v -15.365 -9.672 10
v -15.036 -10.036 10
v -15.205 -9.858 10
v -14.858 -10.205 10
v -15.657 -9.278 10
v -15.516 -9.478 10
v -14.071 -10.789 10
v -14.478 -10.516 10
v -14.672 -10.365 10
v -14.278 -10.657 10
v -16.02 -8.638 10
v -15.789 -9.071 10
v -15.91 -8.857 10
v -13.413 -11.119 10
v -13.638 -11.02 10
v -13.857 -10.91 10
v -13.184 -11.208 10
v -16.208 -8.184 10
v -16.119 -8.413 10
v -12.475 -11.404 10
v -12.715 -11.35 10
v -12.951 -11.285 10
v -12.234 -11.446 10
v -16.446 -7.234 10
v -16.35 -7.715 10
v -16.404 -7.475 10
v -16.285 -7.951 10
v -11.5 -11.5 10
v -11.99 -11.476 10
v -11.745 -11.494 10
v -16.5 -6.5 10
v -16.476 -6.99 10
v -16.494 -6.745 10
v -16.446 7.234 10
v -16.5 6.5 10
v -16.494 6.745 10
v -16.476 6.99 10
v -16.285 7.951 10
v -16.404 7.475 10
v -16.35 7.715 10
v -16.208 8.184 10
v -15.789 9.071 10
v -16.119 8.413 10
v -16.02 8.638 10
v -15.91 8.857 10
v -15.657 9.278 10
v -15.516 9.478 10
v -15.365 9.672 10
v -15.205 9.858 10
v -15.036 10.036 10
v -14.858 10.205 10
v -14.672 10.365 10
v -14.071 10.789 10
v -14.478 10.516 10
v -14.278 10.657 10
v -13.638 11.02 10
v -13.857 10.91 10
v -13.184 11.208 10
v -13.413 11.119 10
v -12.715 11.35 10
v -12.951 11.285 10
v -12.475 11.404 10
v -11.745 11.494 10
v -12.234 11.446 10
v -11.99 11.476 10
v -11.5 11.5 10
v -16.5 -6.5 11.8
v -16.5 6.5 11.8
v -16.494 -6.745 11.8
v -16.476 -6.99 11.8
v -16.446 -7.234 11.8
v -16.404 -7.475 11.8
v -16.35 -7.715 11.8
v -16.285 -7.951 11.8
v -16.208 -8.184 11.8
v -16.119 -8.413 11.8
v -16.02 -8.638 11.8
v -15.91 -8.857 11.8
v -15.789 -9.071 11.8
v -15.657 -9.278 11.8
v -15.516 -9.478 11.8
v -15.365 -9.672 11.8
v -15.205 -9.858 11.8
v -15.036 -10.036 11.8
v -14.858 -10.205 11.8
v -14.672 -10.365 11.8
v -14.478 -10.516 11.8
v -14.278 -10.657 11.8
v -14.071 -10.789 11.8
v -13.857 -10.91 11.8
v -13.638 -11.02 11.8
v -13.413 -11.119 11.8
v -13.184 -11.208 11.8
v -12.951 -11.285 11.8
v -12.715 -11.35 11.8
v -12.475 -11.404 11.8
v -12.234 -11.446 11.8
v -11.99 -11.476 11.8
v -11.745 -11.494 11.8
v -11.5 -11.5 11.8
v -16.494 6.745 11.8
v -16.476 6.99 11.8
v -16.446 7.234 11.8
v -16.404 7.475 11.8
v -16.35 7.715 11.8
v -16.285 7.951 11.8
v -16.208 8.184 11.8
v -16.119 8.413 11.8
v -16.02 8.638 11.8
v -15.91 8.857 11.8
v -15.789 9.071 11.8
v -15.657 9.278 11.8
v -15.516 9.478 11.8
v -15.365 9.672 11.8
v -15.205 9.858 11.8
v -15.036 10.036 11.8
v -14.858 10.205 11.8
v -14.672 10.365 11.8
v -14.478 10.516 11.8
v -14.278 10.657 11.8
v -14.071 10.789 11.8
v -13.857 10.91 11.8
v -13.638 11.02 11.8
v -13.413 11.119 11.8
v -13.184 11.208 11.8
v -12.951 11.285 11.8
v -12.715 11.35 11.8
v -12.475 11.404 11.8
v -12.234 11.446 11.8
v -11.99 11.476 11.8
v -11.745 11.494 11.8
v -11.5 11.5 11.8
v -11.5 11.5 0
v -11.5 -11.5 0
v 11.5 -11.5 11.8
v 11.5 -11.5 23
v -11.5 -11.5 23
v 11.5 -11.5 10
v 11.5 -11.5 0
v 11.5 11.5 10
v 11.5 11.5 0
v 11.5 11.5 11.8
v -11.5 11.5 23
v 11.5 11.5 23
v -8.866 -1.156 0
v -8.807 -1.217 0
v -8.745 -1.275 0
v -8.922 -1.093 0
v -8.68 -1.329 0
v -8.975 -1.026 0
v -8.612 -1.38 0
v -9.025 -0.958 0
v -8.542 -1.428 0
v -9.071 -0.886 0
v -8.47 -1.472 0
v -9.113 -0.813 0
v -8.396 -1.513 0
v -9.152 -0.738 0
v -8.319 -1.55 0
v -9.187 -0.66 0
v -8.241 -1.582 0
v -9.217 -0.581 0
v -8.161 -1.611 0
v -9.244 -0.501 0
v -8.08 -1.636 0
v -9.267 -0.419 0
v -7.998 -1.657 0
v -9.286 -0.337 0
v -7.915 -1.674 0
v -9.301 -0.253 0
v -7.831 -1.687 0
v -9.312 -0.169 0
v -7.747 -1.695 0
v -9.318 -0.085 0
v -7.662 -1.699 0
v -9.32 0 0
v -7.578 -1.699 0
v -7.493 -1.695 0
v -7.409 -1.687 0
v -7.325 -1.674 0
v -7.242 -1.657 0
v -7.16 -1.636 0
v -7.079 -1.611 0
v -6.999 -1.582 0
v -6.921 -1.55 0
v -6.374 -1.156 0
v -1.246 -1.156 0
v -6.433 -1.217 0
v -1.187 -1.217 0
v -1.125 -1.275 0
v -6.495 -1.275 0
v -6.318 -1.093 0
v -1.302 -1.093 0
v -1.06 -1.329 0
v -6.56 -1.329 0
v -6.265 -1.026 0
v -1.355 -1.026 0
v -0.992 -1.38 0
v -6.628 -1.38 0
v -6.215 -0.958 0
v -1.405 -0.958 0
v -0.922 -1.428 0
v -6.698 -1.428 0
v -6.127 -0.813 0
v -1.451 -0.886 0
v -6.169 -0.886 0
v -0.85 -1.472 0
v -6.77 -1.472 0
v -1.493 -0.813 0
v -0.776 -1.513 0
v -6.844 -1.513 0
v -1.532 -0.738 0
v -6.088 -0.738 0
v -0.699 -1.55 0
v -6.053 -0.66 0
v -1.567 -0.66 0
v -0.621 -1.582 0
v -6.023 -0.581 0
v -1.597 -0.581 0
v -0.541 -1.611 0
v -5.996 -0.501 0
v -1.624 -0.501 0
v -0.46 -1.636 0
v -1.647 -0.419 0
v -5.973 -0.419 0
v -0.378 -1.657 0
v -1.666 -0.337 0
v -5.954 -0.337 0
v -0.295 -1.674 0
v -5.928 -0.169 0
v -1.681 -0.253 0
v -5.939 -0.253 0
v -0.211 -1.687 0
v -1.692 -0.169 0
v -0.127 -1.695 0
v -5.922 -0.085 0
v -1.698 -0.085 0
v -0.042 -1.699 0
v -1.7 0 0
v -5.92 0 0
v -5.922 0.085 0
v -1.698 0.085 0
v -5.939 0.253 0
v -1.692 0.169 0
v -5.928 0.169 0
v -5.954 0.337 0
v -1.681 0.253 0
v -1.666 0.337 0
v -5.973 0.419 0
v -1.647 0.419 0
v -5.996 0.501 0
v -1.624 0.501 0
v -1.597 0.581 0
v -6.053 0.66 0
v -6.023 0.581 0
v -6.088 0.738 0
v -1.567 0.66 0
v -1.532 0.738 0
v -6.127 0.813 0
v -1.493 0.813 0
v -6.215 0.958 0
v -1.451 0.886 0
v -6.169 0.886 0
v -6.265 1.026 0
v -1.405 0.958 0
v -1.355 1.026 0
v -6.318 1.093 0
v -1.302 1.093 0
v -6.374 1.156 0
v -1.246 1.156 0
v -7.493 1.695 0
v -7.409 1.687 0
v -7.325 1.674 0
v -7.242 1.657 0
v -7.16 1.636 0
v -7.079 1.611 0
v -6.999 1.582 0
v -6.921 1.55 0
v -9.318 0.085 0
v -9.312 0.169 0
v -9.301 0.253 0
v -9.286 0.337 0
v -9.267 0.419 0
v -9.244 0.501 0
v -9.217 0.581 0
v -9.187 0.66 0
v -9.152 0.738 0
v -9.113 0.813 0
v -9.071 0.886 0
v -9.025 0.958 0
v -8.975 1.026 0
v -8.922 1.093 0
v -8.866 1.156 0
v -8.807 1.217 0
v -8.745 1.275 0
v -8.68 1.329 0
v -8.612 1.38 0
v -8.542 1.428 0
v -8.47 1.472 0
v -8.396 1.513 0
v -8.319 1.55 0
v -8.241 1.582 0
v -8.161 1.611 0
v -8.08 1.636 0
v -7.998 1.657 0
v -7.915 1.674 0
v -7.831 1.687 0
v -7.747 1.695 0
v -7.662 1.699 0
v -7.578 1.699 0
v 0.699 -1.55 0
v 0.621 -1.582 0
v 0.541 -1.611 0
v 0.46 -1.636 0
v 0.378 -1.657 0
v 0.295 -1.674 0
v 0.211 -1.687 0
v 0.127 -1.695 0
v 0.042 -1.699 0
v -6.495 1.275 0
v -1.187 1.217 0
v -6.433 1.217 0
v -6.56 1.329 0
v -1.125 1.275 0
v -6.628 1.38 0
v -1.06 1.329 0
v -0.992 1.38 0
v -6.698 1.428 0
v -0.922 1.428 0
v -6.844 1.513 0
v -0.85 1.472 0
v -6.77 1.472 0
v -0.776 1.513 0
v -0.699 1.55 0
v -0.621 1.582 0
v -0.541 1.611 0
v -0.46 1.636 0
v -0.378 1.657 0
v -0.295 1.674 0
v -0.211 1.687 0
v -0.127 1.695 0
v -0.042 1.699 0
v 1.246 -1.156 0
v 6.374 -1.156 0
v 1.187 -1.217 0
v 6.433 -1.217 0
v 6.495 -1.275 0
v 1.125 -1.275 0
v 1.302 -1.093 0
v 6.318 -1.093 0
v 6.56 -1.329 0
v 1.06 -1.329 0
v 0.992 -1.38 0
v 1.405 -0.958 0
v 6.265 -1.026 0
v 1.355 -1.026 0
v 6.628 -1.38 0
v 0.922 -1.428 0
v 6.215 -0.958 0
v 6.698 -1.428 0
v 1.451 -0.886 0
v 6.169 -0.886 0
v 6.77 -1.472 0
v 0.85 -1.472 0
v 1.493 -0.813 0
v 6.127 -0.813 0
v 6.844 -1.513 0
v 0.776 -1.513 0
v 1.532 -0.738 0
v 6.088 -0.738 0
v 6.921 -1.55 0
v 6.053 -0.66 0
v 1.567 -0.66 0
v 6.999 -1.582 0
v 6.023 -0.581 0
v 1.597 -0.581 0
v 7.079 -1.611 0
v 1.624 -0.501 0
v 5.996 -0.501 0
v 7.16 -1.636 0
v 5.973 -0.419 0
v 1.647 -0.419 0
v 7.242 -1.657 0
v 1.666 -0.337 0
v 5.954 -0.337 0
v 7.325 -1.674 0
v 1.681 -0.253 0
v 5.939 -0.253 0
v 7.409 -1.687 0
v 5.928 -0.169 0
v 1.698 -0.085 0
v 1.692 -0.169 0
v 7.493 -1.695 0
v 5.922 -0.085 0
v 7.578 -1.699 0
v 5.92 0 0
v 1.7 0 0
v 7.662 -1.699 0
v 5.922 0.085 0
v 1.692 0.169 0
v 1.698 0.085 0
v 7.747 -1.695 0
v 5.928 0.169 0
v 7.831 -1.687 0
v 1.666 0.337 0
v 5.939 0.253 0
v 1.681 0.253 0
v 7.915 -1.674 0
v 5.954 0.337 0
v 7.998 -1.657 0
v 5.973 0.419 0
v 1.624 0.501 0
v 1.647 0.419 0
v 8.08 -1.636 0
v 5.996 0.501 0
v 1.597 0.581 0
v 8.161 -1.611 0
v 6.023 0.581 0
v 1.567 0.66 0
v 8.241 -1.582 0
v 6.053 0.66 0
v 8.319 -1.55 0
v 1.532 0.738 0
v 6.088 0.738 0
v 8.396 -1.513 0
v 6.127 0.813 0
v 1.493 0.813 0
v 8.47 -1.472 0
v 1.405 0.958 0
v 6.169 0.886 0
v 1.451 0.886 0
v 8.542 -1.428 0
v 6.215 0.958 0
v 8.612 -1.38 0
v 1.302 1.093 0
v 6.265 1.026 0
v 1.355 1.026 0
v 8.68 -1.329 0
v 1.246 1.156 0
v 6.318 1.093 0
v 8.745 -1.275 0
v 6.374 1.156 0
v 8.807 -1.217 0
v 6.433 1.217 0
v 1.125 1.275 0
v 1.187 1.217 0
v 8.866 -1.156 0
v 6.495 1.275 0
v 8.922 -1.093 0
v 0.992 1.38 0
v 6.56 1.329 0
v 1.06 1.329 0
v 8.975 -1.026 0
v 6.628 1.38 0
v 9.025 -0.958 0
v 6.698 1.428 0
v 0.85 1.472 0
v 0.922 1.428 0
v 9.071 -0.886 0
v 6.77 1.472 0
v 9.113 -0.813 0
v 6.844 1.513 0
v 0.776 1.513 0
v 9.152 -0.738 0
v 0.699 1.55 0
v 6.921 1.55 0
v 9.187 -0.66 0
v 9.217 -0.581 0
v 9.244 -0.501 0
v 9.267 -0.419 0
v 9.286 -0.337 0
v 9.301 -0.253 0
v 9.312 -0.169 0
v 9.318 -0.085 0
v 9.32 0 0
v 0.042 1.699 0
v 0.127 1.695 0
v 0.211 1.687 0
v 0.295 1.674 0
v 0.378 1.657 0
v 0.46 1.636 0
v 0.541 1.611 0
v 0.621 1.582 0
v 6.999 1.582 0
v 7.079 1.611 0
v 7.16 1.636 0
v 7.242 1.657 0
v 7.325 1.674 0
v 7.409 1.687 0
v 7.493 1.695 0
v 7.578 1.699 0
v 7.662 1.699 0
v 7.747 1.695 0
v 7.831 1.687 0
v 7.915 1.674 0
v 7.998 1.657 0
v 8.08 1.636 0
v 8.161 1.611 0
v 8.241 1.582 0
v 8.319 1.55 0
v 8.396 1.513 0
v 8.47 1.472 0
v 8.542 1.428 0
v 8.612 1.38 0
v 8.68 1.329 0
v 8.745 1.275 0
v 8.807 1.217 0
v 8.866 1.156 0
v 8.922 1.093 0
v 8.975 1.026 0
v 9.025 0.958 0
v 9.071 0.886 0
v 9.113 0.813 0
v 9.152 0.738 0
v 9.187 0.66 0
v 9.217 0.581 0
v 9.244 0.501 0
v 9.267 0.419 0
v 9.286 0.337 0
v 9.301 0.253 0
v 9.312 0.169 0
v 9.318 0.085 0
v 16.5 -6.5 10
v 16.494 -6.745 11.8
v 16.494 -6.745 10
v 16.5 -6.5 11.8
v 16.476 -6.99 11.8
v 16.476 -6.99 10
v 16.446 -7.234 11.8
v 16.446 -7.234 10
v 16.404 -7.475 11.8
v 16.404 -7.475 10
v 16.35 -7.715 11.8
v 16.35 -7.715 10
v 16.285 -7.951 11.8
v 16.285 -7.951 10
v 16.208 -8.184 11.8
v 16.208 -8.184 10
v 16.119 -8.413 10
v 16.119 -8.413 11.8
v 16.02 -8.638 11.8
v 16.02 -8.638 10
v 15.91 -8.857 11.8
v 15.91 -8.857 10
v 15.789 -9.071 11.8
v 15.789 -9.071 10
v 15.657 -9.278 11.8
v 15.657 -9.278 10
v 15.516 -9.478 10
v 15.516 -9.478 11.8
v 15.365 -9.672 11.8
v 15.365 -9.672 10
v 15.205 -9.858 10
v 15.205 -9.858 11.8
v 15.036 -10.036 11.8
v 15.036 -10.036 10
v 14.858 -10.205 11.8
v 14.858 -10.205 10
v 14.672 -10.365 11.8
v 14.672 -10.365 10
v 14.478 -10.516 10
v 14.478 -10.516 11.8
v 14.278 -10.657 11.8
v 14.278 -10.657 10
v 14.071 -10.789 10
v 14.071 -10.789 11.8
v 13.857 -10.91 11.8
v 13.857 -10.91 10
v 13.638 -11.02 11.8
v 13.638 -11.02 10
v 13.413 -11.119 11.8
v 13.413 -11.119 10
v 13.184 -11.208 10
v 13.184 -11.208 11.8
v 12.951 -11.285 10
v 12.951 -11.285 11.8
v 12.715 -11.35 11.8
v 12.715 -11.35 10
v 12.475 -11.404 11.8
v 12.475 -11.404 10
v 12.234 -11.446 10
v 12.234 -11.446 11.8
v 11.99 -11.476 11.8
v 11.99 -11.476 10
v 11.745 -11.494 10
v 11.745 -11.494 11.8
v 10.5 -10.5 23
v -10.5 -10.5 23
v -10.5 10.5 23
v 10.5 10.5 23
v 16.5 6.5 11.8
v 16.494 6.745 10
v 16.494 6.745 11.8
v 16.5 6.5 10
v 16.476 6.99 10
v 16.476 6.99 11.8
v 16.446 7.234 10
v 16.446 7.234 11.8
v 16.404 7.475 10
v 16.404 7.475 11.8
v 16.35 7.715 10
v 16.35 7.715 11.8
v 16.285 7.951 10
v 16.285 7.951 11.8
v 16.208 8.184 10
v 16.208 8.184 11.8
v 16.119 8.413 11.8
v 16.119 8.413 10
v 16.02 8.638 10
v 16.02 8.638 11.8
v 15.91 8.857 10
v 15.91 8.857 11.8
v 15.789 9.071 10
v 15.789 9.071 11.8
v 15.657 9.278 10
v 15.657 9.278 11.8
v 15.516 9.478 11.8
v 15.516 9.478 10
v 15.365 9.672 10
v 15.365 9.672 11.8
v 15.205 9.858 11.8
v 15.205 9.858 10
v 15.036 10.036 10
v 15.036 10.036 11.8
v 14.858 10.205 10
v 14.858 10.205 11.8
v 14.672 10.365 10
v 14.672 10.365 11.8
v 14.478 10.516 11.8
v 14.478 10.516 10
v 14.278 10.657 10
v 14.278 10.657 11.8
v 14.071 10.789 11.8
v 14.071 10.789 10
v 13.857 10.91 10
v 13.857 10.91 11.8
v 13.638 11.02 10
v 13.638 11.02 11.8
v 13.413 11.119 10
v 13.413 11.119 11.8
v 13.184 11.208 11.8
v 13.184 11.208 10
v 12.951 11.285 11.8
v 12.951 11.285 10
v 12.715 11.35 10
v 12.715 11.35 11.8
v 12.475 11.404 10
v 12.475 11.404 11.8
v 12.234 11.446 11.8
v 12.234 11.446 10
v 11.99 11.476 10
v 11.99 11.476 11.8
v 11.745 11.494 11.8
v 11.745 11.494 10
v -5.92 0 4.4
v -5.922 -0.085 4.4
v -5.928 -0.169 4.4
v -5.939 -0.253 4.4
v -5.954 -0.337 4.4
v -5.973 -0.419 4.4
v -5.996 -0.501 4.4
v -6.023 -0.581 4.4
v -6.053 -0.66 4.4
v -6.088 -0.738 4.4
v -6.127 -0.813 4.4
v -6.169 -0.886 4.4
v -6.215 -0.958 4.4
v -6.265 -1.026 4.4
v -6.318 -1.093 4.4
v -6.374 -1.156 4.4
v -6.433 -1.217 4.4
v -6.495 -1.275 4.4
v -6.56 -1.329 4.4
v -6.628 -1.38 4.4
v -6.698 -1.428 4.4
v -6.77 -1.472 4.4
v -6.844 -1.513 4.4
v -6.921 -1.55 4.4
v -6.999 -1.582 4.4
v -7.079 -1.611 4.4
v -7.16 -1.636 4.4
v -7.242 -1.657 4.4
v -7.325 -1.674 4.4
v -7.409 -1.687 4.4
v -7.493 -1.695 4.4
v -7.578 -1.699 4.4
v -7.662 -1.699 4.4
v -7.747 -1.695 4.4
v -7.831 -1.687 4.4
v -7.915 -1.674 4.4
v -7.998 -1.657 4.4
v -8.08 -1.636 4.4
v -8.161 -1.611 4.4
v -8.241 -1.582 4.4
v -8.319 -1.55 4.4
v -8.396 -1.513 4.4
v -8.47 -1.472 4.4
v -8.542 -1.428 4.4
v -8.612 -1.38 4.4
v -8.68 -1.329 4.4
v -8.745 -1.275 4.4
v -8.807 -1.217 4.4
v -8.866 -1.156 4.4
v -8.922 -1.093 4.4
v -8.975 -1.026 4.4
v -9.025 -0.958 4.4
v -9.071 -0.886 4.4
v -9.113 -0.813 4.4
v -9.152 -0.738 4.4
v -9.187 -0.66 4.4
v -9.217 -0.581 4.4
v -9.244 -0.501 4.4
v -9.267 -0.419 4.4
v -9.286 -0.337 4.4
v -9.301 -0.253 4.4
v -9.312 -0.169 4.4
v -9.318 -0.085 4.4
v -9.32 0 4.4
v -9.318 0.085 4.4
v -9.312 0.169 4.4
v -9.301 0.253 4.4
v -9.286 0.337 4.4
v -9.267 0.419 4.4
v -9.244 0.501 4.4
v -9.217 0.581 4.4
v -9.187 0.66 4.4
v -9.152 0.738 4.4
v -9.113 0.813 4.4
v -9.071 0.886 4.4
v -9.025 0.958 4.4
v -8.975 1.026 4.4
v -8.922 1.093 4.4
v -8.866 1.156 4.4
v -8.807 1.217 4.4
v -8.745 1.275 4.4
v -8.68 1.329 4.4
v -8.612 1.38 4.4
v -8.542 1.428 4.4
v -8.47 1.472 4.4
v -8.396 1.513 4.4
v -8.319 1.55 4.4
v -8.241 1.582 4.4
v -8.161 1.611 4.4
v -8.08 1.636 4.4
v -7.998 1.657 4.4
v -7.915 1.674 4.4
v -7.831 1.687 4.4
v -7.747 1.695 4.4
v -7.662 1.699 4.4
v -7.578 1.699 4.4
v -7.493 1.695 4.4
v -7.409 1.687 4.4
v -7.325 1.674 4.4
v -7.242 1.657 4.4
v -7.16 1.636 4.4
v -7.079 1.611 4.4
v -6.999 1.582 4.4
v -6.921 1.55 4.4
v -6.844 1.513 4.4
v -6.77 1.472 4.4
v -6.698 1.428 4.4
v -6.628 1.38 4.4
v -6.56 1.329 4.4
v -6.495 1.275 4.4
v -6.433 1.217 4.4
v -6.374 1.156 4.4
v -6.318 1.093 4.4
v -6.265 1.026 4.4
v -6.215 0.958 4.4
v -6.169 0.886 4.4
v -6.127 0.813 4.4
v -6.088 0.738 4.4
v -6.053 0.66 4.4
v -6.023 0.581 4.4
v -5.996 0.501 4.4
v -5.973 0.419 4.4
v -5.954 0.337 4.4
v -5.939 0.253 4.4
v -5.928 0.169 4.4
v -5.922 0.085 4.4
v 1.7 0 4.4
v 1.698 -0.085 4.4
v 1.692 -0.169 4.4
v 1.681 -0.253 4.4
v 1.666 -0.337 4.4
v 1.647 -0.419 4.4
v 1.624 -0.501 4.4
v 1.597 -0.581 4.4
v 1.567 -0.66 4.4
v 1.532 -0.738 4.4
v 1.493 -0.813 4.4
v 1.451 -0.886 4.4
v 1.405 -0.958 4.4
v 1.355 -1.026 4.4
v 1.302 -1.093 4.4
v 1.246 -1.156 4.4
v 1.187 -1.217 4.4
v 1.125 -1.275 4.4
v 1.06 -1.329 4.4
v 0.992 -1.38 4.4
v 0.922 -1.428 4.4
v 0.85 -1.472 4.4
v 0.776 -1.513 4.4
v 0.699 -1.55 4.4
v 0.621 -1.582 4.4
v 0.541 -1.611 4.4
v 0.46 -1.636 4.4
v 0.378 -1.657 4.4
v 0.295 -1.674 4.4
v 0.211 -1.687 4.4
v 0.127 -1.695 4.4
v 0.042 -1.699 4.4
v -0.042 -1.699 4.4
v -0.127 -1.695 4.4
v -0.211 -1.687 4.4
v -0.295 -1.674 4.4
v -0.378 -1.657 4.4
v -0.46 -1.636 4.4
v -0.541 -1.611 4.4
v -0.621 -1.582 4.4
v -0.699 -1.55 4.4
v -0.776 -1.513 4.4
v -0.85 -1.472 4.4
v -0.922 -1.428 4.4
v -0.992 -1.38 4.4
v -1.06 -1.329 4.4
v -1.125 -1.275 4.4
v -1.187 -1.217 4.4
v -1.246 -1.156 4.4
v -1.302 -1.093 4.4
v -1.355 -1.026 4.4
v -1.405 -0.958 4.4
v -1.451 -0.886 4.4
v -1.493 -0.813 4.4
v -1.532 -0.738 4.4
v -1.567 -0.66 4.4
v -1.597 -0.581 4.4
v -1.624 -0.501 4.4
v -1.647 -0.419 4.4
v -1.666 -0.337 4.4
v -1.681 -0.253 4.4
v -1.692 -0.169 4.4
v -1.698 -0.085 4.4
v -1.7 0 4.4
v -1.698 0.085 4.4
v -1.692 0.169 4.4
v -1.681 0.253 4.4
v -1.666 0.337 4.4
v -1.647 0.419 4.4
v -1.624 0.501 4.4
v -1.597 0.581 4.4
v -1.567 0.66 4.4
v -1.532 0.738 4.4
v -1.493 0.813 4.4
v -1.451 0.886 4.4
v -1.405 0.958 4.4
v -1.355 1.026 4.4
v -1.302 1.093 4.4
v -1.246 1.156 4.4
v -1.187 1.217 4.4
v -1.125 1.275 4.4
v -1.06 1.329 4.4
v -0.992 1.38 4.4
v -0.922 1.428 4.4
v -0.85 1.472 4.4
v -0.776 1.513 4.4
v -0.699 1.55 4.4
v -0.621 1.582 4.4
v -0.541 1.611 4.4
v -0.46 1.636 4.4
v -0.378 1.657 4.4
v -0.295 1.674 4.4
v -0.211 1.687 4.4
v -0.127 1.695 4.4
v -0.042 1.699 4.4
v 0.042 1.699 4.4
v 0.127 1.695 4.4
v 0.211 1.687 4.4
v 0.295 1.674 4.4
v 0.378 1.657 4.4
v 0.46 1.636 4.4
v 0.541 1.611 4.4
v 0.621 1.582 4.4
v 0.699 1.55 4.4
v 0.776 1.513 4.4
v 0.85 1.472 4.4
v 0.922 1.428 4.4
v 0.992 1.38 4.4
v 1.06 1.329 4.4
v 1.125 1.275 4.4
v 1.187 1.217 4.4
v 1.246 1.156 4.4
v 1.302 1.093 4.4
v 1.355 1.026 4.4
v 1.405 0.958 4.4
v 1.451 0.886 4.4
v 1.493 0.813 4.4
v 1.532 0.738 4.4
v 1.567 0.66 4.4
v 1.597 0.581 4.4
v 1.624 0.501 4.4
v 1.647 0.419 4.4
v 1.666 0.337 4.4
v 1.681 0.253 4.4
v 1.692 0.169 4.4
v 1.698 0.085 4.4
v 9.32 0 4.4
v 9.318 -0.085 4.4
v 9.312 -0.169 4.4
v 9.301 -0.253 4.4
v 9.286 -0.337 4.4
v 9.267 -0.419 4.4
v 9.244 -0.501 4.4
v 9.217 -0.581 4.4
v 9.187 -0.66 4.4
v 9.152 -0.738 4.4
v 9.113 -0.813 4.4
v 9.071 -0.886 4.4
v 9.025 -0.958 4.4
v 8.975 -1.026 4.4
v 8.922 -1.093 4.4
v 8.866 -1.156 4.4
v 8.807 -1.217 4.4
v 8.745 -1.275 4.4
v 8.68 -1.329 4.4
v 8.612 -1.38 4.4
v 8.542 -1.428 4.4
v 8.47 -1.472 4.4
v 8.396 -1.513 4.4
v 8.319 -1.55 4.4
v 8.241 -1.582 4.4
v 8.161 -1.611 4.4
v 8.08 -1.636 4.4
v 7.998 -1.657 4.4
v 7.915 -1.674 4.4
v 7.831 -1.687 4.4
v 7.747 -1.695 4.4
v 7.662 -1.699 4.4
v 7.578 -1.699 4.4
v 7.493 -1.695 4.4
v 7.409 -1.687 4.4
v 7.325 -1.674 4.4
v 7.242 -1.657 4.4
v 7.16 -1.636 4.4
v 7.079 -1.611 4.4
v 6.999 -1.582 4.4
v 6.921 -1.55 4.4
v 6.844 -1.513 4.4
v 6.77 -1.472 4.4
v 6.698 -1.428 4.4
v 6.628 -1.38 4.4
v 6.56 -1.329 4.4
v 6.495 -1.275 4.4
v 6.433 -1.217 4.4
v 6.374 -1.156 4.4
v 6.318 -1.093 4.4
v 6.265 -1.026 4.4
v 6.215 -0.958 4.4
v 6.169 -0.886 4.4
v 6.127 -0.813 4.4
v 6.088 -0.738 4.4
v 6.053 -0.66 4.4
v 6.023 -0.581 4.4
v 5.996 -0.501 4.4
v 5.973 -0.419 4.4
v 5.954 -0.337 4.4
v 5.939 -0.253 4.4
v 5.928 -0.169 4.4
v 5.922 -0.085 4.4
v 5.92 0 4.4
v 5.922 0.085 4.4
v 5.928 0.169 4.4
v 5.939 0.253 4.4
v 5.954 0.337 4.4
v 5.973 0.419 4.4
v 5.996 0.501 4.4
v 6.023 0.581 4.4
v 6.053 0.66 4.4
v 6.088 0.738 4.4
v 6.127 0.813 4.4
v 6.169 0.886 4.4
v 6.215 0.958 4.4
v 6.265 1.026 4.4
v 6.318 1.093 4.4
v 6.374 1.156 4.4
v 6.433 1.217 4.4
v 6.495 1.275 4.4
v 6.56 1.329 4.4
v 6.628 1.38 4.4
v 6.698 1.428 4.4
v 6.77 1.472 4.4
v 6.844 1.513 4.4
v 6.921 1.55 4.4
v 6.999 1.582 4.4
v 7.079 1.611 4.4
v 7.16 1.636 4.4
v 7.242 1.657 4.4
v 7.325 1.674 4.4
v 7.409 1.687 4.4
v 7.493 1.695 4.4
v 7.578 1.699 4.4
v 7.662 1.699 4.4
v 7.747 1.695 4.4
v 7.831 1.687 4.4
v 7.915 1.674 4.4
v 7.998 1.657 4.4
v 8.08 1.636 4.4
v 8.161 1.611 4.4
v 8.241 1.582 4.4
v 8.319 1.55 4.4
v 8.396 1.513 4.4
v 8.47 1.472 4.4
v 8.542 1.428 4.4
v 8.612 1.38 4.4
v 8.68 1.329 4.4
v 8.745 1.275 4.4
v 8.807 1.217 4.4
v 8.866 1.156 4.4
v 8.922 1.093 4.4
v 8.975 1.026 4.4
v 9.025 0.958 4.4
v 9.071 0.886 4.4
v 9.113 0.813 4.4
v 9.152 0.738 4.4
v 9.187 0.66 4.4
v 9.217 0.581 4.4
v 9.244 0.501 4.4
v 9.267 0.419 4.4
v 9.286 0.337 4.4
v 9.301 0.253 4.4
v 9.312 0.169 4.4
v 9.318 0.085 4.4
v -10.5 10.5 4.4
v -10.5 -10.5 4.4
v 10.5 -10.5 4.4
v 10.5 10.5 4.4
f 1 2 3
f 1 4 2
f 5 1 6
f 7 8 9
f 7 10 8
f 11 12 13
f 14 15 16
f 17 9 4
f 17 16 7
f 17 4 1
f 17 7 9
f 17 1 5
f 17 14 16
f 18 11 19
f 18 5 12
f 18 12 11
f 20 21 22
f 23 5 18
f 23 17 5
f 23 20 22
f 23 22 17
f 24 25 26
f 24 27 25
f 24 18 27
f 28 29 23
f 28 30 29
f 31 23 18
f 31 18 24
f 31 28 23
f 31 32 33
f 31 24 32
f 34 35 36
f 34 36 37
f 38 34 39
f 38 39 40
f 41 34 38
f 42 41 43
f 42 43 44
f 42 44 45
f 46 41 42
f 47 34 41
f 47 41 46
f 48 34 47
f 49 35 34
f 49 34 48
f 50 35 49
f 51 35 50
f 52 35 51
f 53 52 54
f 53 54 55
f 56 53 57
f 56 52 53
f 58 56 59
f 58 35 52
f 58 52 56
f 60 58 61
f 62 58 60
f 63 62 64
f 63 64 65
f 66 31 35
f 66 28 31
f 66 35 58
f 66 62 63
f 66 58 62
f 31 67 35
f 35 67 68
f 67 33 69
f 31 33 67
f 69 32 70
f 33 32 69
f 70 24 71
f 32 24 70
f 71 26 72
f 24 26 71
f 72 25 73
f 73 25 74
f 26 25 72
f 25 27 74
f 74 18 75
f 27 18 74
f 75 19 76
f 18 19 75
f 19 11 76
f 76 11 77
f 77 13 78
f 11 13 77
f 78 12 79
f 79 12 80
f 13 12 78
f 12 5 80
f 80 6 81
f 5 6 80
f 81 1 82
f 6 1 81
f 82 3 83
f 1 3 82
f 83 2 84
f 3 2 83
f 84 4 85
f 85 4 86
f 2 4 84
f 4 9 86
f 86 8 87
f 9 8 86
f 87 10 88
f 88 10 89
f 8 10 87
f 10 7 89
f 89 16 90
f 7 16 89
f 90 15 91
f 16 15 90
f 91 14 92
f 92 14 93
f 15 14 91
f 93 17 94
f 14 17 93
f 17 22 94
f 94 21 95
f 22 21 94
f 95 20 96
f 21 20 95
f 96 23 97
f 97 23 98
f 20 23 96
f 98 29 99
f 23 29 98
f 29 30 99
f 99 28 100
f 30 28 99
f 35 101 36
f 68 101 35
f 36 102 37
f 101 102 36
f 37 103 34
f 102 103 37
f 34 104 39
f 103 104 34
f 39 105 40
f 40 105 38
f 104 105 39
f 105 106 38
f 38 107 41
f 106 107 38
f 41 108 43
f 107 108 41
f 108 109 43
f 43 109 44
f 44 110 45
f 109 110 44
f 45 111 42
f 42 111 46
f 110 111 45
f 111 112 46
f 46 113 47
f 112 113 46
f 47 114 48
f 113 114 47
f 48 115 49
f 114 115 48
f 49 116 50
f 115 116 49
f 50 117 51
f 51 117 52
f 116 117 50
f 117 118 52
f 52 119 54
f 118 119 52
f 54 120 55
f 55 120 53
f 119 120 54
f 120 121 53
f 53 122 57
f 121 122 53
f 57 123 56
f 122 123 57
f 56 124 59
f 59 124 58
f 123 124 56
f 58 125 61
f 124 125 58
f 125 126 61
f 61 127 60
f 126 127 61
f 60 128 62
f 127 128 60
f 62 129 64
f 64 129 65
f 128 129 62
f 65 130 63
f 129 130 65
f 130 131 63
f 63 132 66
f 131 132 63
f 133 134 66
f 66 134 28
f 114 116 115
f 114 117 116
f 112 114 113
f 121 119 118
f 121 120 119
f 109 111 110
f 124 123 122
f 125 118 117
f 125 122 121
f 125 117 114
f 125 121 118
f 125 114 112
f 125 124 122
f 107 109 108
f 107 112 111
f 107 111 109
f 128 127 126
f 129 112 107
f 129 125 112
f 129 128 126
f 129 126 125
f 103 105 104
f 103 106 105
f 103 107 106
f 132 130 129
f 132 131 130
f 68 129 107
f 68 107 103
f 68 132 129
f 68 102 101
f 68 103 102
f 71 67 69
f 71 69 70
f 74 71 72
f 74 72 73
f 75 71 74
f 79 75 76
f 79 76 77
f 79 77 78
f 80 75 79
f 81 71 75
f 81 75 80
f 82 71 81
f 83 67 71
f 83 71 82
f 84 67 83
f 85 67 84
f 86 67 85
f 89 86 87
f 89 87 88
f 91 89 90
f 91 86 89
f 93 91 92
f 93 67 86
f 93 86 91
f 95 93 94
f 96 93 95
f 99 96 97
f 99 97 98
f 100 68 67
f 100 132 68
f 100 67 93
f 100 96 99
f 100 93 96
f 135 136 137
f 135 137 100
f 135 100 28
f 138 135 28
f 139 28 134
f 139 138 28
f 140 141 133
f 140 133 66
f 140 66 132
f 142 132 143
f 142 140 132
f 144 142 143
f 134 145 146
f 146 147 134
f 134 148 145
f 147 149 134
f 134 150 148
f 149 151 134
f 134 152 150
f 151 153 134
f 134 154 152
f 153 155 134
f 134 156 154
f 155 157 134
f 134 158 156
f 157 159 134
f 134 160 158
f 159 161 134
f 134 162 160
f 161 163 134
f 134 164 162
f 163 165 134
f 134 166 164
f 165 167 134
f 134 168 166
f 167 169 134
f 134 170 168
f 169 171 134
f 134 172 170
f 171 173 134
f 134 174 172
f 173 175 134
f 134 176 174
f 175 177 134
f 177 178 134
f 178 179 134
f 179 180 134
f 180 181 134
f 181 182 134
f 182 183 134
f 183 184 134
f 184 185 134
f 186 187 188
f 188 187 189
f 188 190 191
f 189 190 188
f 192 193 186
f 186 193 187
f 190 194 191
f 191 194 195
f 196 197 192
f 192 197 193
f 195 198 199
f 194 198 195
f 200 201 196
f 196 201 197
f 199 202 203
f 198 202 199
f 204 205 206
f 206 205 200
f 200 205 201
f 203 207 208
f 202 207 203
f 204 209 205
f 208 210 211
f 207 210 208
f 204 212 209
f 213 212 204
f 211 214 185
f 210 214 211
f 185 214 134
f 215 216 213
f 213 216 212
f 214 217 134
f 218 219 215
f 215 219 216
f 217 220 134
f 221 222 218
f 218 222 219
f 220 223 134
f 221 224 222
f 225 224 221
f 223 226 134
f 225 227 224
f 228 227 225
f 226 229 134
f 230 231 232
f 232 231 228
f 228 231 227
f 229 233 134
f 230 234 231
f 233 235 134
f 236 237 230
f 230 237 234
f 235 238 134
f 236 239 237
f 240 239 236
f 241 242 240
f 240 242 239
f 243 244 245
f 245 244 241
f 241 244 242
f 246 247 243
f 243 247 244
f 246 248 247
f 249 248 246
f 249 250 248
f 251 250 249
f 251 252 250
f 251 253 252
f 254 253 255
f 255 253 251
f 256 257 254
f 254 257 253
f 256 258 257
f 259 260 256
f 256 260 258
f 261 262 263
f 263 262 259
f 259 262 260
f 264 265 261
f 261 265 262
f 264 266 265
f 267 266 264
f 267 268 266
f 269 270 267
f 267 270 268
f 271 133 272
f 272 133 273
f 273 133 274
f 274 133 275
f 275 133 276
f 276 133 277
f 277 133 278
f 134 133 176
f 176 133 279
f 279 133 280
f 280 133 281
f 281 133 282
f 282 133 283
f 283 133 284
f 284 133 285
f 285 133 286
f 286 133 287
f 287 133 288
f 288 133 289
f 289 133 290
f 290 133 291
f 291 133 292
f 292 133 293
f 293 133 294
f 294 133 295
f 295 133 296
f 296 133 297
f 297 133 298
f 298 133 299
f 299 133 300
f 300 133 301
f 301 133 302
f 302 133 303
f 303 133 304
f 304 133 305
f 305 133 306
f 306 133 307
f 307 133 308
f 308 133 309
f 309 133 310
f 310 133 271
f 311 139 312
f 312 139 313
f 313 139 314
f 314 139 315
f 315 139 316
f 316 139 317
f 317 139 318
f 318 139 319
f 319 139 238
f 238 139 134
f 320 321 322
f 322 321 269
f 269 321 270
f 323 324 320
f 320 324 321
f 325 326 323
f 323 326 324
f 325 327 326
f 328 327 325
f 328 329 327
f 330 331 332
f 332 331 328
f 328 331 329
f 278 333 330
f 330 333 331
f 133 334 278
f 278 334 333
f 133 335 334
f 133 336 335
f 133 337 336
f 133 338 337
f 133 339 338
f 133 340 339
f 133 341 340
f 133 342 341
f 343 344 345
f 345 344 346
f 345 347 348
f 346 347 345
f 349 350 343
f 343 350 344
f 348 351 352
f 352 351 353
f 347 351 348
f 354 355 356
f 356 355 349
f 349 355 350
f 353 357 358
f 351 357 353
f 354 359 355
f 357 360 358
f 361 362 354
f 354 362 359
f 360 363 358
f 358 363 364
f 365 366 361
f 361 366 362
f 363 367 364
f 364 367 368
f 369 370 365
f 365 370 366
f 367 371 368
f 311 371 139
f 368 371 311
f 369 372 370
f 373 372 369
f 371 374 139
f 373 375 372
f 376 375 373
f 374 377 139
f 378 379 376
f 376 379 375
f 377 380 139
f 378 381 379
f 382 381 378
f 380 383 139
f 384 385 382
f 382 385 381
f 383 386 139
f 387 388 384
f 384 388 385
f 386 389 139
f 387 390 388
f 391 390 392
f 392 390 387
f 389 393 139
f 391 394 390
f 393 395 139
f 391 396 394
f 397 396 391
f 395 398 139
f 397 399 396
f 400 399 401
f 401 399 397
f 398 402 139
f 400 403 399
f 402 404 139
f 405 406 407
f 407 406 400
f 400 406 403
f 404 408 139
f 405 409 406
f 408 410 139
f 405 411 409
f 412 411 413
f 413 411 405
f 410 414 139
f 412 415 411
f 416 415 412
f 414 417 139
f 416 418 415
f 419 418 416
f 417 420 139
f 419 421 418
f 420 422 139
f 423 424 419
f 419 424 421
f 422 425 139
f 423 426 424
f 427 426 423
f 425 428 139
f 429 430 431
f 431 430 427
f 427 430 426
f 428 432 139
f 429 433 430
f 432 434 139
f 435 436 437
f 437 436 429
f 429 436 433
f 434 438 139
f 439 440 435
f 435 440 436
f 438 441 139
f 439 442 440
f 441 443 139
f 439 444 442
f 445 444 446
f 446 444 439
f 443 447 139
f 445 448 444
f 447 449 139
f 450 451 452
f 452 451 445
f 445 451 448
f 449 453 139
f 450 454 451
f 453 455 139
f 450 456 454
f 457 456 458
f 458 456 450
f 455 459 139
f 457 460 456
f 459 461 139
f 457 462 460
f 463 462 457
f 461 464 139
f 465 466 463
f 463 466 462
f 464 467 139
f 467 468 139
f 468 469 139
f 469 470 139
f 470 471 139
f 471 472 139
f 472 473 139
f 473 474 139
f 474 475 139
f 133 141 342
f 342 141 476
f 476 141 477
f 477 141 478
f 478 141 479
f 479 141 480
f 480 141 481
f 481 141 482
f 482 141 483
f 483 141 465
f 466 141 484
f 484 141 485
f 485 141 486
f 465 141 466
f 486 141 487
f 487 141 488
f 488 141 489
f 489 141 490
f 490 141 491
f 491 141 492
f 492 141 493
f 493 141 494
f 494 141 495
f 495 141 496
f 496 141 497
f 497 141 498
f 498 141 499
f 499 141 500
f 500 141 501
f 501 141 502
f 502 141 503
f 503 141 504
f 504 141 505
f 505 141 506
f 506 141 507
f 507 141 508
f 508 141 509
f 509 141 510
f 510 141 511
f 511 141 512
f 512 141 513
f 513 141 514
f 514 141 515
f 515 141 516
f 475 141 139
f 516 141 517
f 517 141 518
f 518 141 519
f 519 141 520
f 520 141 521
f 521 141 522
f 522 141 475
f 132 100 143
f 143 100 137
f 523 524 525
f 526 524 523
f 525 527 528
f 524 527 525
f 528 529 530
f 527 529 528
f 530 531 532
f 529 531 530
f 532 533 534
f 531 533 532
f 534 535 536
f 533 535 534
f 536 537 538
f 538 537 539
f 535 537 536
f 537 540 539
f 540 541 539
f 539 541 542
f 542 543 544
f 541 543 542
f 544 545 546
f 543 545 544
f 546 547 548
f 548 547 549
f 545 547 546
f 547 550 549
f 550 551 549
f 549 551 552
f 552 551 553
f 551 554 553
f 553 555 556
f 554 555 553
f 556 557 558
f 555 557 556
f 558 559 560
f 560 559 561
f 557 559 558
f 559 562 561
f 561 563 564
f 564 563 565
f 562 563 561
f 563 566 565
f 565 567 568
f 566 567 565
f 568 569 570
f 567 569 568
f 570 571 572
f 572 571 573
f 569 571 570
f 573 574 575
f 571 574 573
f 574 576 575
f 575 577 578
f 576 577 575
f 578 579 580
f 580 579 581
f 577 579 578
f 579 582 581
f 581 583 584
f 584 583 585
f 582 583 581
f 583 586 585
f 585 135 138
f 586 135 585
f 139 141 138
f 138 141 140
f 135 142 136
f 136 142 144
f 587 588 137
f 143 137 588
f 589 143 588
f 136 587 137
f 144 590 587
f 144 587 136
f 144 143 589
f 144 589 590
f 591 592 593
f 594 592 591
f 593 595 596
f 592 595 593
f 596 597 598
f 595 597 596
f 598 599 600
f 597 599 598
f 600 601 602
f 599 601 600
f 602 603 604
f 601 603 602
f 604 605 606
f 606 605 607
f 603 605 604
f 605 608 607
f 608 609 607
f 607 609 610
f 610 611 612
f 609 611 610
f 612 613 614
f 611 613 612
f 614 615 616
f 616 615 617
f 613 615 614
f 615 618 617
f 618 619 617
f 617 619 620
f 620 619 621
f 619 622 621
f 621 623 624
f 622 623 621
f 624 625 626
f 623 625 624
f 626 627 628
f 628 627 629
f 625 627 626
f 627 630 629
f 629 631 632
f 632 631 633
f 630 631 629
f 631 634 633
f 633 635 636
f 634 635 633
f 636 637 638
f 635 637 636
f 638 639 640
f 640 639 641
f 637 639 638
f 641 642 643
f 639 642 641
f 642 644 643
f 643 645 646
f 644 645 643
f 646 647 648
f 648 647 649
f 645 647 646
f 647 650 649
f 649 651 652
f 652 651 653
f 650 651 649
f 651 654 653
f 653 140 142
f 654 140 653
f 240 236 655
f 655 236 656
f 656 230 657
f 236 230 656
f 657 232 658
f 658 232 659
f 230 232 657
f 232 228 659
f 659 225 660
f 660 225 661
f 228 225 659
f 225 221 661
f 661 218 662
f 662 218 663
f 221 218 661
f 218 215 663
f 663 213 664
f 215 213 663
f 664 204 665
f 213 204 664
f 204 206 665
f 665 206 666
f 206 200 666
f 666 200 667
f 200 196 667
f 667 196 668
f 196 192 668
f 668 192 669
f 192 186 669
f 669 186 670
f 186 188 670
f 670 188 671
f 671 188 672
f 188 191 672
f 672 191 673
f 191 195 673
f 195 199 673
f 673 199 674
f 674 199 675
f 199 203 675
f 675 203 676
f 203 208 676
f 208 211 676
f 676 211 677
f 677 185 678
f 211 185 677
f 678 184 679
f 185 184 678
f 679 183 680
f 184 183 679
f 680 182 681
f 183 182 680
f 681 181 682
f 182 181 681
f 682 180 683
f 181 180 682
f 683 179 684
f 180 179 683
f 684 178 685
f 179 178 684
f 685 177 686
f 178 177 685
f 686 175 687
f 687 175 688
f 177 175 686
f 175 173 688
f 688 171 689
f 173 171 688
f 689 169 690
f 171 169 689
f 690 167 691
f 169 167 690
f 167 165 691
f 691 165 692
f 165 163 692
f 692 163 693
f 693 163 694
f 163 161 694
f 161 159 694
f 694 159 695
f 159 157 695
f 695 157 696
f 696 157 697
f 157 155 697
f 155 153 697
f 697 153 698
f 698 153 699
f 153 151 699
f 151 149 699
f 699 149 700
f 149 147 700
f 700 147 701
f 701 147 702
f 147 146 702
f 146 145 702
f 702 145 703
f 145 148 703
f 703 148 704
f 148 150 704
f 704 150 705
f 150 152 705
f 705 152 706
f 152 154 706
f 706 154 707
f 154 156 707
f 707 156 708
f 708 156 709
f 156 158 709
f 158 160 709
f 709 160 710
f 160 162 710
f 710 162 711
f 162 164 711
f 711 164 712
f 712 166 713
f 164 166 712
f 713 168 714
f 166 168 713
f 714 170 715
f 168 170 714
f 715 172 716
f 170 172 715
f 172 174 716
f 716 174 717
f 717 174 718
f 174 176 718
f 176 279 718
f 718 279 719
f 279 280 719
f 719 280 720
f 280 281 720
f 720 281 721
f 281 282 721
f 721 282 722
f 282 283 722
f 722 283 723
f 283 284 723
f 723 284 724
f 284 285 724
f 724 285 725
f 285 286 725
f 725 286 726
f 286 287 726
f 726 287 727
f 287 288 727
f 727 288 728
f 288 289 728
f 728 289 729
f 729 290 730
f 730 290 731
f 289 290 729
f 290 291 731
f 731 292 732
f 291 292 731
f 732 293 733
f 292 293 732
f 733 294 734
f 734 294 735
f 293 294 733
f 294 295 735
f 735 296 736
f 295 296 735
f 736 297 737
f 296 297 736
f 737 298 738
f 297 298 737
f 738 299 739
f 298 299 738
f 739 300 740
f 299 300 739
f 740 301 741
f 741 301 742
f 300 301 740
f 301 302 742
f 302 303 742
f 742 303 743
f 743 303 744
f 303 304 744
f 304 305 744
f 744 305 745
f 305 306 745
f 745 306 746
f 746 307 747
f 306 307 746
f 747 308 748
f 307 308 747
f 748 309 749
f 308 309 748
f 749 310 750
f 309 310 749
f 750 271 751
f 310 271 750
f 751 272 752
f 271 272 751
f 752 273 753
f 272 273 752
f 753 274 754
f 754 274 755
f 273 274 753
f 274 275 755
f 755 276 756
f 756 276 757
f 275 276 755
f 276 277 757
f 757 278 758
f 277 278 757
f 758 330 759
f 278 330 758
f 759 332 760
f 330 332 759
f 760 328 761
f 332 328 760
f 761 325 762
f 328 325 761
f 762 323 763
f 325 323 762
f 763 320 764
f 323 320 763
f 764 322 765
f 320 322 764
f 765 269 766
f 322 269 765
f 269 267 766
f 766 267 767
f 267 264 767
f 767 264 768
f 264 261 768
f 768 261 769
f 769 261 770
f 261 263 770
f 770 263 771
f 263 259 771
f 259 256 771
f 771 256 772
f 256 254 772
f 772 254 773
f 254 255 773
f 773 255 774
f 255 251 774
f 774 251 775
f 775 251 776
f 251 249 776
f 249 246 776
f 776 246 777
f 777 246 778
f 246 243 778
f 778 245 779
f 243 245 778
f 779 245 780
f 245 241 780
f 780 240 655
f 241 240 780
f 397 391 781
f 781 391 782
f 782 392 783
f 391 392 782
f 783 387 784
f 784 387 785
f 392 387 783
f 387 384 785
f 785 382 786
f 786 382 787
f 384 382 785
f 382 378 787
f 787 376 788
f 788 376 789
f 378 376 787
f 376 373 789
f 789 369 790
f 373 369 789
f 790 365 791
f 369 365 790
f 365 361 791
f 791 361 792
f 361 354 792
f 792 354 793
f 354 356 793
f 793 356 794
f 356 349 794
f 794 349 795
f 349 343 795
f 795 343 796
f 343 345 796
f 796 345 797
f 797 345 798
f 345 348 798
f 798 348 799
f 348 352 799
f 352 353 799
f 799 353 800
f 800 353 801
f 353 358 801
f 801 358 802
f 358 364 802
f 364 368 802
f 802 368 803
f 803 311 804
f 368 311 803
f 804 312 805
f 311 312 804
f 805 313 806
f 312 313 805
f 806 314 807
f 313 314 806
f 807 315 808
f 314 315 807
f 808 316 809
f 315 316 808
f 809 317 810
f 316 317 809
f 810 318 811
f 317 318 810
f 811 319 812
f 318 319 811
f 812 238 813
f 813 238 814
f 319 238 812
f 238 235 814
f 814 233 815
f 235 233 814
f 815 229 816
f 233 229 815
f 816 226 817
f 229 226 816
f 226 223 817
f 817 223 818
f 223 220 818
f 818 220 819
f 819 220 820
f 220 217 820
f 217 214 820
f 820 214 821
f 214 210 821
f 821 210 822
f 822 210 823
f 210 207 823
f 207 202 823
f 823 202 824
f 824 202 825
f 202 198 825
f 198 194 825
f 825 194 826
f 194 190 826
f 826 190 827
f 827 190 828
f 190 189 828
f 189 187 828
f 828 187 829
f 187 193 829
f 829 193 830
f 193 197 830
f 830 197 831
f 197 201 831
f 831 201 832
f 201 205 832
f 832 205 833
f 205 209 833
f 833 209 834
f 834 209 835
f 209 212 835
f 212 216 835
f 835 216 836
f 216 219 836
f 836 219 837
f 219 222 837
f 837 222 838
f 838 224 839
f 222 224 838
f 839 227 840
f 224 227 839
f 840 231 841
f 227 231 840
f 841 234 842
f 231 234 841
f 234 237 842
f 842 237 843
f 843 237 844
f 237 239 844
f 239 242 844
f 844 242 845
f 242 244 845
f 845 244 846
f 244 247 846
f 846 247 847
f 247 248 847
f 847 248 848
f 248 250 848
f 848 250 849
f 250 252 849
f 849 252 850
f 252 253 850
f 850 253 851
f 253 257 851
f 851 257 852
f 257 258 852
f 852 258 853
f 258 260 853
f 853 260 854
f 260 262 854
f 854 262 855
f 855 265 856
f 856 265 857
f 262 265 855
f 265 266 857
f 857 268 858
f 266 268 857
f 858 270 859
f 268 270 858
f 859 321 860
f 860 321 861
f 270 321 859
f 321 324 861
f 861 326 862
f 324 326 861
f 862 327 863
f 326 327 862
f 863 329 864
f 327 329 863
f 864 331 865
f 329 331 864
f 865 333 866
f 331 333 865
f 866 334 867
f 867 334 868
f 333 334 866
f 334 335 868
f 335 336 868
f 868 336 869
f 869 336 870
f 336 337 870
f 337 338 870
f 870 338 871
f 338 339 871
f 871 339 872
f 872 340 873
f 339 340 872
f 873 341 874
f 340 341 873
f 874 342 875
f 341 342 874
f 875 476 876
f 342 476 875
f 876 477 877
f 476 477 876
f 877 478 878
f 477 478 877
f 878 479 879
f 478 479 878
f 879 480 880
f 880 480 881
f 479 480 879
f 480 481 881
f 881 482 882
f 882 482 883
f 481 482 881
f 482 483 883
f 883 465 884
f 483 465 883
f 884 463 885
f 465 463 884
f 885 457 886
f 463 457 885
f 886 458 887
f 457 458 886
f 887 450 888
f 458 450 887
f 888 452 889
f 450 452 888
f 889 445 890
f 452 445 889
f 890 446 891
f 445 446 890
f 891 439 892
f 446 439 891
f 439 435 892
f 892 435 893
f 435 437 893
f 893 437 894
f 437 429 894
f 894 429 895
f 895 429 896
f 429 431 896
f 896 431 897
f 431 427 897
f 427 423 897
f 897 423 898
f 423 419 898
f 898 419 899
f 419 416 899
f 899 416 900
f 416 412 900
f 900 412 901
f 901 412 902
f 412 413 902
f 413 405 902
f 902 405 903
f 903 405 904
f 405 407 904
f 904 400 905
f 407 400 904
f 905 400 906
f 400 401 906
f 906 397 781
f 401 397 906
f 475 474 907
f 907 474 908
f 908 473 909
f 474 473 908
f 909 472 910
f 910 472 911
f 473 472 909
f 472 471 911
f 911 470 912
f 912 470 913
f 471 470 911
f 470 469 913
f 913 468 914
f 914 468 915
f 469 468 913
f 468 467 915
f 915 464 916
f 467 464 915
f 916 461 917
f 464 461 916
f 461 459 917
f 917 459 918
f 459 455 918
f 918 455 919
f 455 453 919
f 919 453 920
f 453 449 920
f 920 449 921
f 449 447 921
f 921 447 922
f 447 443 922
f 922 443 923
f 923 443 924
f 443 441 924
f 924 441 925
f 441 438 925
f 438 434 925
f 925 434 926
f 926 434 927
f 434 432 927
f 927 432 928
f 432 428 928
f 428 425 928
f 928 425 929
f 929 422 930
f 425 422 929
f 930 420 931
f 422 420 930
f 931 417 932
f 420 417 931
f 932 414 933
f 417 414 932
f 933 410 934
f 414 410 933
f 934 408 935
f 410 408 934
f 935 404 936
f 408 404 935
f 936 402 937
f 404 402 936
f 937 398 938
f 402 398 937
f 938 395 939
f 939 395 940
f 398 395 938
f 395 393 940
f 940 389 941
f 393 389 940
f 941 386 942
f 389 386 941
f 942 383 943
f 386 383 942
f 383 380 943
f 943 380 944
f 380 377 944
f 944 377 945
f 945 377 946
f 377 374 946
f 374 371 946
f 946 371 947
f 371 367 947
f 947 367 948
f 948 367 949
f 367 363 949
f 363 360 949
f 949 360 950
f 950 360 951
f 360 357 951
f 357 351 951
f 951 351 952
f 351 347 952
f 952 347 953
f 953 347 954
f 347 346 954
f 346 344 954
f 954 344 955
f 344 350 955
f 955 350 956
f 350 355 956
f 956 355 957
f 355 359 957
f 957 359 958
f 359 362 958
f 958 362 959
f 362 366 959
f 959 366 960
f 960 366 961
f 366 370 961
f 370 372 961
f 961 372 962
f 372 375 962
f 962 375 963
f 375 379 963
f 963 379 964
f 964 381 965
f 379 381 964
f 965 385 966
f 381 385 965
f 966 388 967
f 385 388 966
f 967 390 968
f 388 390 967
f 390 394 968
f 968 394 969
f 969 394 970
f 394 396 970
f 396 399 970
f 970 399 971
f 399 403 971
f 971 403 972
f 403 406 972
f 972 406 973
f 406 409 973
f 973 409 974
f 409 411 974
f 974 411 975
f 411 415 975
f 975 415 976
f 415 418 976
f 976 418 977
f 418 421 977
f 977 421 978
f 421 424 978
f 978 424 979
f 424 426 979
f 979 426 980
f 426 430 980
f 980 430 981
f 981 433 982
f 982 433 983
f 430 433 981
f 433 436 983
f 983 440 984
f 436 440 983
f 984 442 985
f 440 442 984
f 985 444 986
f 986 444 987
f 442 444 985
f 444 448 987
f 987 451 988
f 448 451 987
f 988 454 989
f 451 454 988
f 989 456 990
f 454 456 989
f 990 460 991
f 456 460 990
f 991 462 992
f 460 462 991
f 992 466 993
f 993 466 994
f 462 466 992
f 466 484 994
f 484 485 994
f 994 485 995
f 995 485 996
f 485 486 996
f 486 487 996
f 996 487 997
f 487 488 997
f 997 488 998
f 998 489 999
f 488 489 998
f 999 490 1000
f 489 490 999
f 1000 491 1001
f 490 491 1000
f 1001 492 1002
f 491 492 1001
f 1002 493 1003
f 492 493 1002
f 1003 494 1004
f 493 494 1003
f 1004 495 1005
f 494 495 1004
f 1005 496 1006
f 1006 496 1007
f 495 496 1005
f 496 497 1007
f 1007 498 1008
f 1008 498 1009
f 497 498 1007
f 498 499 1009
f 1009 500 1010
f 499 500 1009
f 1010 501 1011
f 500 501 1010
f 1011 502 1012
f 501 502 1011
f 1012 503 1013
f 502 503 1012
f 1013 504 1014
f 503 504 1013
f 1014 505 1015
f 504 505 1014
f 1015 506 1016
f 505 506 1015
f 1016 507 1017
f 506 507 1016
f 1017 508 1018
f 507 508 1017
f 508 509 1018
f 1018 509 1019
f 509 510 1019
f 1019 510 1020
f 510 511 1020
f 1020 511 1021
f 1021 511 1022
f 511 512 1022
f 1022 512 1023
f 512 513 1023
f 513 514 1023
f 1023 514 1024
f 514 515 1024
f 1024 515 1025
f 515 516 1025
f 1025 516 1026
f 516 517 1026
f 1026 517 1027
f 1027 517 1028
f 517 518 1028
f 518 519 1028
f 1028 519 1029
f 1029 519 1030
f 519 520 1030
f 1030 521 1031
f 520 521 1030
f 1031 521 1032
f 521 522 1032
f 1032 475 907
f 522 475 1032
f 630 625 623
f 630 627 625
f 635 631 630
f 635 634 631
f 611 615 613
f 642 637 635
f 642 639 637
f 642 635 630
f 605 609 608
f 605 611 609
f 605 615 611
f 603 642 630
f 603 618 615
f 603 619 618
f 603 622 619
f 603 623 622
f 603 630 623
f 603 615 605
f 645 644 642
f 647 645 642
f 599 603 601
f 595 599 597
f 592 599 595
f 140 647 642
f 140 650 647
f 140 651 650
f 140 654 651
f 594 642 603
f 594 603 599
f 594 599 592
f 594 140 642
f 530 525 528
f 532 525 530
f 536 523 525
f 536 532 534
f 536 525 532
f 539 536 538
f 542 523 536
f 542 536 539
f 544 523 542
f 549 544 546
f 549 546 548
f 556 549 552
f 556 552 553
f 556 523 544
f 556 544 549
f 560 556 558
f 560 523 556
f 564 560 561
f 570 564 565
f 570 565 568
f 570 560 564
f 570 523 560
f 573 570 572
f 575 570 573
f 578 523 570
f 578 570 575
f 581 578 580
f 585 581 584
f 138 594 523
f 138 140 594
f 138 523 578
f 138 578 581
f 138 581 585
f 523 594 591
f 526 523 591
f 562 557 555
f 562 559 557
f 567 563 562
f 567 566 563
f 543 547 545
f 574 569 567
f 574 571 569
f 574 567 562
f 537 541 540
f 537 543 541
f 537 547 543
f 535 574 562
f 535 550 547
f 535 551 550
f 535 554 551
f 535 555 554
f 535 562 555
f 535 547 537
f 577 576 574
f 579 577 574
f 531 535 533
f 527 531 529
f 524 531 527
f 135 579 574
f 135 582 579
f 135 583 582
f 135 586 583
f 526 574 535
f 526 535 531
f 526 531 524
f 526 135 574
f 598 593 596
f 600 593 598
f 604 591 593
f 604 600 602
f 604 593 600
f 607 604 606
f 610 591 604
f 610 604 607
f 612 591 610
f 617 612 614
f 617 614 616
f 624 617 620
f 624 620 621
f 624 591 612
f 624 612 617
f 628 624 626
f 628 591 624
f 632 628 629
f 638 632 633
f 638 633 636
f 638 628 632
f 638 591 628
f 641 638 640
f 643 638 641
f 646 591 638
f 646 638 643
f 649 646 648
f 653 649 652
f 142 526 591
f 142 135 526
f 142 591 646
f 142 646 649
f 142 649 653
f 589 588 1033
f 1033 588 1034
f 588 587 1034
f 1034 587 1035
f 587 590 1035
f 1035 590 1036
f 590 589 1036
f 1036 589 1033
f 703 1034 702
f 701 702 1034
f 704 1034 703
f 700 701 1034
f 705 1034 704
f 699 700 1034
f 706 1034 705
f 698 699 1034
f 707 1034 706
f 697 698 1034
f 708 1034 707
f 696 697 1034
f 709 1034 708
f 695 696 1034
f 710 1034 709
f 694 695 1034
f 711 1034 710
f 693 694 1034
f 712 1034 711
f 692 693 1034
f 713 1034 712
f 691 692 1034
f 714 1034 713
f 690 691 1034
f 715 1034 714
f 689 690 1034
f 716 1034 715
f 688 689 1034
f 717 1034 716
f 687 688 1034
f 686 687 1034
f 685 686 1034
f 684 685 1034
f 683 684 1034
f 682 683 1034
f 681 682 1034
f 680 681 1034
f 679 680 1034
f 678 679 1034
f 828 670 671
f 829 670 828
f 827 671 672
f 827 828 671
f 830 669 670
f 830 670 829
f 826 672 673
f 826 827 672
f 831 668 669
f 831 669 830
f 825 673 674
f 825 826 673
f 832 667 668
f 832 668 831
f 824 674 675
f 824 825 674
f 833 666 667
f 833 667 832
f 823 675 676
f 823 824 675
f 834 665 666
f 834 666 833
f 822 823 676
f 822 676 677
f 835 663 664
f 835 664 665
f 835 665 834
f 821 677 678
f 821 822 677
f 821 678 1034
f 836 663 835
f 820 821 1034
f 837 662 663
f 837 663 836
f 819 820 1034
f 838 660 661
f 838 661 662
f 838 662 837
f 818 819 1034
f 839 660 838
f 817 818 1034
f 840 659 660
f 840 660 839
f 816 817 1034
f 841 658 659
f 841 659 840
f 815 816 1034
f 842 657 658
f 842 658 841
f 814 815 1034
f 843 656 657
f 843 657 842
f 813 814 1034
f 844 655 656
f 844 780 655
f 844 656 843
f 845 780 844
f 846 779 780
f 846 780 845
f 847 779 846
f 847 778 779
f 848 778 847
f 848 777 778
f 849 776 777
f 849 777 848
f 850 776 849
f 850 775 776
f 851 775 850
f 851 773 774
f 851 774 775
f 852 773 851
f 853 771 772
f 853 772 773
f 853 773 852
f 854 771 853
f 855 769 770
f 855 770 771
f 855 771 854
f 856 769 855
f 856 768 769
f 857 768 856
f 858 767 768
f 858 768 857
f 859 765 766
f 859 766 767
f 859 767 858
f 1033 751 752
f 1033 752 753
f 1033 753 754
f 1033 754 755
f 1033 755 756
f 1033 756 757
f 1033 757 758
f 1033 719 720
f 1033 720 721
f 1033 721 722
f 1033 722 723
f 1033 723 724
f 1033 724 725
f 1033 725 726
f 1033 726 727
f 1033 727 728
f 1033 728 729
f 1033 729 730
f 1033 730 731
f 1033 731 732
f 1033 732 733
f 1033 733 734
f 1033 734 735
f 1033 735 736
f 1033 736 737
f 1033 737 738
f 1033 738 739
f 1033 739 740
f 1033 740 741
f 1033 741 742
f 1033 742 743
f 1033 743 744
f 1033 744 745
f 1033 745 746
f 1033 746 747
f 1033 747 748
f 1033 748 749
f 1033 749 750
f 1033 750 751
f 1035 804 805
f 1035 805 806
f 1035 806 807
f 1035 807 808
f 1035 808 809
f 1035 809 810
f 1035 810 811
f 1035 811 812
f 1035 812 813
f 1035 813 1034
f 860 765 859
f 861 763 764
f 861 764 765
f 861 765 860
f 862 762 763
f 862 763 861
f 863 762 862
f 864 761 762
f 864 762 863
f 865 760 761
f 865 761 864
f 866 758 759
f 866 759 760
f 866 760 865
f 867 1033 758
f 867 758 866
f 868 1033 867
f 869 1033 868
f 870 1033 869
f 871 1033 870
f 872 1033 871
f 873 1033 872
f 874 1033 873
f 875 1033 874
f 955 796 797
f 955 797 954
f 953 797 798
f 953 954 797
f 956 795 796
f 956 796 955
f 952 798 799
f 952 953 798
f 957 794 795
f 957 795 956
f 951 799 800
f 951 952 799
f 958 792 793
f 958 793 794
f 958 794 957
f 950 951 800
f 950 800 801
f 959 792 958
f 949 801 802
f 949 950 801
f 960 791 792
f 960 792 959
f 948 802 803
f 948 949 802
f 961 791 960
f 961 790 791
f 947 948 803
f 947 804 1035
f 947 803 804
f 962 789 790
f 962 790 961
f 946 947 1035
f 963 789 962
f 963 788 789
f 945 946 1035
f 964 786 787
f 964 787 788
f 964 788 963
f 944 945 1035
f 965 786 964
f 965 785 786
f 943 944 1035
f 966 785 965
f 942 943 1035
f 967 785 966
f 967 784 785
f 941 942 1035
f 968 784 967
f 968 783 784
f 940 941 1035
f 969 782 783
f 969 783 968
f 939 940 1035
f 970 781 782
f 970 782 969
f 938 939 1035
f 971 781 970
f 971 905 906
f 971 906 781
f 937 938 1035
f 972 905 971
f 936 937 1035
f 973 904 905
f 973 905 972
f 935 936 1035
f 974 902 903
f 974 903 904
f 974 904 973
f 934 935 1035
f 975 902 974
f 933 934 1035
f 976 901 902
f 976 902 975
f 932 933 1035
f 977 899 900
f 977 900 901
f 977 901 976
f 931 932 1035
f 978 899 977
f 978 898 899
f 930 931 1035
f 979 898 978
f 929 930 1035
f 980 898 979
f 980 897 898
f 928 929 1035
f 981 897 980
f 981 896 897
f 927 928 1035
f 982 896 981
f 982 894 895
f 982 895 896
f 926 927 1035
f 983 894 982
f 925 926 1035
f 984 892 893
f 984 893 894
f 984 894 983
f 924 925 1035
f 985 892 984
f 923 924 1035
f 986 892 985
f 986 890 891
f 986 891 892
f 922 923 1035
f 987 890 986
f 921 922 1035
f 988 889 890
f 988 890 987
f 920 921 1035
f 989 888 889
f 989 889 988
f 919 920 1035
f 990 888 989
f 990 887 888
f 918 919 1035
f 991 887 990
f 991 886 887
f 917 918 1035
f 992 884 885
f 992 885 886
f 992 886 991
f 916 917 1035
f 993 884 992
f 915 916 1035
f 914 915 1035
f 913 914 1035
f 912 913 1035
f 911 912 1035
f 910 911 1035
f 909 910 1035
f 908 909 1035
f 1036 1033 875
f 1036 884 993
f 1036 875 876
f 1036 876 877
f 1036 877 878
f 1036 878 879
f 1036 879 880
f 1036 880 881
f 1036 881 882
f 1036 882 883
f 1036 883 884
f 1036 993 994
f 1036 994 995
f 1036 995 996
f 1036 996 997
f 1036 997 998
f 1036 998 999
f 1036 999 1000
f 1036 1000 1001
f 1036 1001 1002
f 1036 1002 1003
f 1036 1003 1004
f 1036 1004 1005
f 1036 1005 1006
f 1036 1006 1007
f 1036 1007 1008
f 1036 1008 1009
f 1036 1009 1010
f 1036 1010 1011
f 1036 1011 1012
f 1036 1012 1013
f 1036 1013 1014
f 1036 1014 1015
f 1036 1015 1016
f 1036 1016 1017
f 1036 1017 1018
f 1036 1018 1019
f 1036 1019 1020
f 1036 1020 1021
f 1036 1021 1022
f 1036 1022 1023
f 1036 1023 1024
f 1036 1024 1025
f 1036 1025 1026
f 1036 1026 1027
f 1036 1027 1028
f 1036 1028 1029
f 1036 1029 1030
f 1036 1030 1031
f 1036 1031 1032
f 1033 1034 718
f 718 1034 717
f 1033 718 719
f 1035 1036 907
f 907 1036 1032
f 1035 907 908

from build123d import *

# Parameters (mm, degrees)
SKETCH_W        = 23
SKETCH_H        = 23
PAD_DEPTH       = 23
SKETCH001_W     = 21
SKETCH001_H     = 21
POCKET_DEPTH    = 18.6
SKETCH002_R     = 1.7
POCKET001_DEPTH = 5
SKETCH003_W     = 23
SKETCH003_H     = 1.8
PAD001_DEPTH    = 5
SKETCH004_W     = 23
SKETCH004_H     = 1.8
PAD002_DEPTH    = 5
FILLET_R        = 5


with BuildPart() as part:
    # Sketch → Pad (new body)
    with BuildSketch(Plane.XY):
        Rectangle(SKETCH_W, SKETCH_H)
    extrude(amount=PAD_DEPTH)

    # Sketch001 (on Face6 of Pad) → Pocket (cut)
    with BuildSketch(Plane.XY.offset(23)):
        Rectangle(SKETCH001_W, SKETCH001_H)
    extrude(amount=-POCKET_DEPTH, mode=Mode.SUBTRACT)

    # Sketch002 (on Face4 of Pocket) → Pocket001 (cut)
    with BuildSketch(Plane(origin=(0, 0, 0), x_dir=(1, 0, 0), z_dir=(0, 0, -1))):
        Circle(SKETCH002_R)
        with Locations((7.62, 0)):
            Circle(SKETCH002_R)
        with Locations((-7.62, 0)):
            Circle(SKETCH002_R)
    extrude(amount=-POCKET001_DEPTH, mode=Mode.SUBTRACT)

    # Sketch003 (on Face1 of Pocket001) → Pad001 (join)
    with BuildSketch(Plane(origin=(-11.5, 0, 0), x_dir=(0, -1, 0), z_dir=(-1, 0, 0))):
        with Locations((0, 10.9)):
            Rectangle(SKETCH003_W, SKETCH003_H)
    extrude(amount=PAD001_DEPTH)

    # Sketch004 (on Face6 of Pad001) → Pad002 (join)
    with BuildSketch(Plane.YZ.offset(11.5)):
        with Locations((0, 10.9)):
            Rectangle(SKETCH004_W, SKETCH004_H)
    extrude(amount=PAD002_DEPTH)

    # Fillet
    fillet_edges = [part.edges().sort_by_distance(p)[0] for p in [
        (16.5, -11.5, 10.9),
        (16.5, 11.5, 10.9),
        (-16.5, -11.5, 10.9),
        (-16.5, 11.5, 10.9),
    ]]
    fillet(fillet_edges, radius=FILLET_R)


solid = part.part
